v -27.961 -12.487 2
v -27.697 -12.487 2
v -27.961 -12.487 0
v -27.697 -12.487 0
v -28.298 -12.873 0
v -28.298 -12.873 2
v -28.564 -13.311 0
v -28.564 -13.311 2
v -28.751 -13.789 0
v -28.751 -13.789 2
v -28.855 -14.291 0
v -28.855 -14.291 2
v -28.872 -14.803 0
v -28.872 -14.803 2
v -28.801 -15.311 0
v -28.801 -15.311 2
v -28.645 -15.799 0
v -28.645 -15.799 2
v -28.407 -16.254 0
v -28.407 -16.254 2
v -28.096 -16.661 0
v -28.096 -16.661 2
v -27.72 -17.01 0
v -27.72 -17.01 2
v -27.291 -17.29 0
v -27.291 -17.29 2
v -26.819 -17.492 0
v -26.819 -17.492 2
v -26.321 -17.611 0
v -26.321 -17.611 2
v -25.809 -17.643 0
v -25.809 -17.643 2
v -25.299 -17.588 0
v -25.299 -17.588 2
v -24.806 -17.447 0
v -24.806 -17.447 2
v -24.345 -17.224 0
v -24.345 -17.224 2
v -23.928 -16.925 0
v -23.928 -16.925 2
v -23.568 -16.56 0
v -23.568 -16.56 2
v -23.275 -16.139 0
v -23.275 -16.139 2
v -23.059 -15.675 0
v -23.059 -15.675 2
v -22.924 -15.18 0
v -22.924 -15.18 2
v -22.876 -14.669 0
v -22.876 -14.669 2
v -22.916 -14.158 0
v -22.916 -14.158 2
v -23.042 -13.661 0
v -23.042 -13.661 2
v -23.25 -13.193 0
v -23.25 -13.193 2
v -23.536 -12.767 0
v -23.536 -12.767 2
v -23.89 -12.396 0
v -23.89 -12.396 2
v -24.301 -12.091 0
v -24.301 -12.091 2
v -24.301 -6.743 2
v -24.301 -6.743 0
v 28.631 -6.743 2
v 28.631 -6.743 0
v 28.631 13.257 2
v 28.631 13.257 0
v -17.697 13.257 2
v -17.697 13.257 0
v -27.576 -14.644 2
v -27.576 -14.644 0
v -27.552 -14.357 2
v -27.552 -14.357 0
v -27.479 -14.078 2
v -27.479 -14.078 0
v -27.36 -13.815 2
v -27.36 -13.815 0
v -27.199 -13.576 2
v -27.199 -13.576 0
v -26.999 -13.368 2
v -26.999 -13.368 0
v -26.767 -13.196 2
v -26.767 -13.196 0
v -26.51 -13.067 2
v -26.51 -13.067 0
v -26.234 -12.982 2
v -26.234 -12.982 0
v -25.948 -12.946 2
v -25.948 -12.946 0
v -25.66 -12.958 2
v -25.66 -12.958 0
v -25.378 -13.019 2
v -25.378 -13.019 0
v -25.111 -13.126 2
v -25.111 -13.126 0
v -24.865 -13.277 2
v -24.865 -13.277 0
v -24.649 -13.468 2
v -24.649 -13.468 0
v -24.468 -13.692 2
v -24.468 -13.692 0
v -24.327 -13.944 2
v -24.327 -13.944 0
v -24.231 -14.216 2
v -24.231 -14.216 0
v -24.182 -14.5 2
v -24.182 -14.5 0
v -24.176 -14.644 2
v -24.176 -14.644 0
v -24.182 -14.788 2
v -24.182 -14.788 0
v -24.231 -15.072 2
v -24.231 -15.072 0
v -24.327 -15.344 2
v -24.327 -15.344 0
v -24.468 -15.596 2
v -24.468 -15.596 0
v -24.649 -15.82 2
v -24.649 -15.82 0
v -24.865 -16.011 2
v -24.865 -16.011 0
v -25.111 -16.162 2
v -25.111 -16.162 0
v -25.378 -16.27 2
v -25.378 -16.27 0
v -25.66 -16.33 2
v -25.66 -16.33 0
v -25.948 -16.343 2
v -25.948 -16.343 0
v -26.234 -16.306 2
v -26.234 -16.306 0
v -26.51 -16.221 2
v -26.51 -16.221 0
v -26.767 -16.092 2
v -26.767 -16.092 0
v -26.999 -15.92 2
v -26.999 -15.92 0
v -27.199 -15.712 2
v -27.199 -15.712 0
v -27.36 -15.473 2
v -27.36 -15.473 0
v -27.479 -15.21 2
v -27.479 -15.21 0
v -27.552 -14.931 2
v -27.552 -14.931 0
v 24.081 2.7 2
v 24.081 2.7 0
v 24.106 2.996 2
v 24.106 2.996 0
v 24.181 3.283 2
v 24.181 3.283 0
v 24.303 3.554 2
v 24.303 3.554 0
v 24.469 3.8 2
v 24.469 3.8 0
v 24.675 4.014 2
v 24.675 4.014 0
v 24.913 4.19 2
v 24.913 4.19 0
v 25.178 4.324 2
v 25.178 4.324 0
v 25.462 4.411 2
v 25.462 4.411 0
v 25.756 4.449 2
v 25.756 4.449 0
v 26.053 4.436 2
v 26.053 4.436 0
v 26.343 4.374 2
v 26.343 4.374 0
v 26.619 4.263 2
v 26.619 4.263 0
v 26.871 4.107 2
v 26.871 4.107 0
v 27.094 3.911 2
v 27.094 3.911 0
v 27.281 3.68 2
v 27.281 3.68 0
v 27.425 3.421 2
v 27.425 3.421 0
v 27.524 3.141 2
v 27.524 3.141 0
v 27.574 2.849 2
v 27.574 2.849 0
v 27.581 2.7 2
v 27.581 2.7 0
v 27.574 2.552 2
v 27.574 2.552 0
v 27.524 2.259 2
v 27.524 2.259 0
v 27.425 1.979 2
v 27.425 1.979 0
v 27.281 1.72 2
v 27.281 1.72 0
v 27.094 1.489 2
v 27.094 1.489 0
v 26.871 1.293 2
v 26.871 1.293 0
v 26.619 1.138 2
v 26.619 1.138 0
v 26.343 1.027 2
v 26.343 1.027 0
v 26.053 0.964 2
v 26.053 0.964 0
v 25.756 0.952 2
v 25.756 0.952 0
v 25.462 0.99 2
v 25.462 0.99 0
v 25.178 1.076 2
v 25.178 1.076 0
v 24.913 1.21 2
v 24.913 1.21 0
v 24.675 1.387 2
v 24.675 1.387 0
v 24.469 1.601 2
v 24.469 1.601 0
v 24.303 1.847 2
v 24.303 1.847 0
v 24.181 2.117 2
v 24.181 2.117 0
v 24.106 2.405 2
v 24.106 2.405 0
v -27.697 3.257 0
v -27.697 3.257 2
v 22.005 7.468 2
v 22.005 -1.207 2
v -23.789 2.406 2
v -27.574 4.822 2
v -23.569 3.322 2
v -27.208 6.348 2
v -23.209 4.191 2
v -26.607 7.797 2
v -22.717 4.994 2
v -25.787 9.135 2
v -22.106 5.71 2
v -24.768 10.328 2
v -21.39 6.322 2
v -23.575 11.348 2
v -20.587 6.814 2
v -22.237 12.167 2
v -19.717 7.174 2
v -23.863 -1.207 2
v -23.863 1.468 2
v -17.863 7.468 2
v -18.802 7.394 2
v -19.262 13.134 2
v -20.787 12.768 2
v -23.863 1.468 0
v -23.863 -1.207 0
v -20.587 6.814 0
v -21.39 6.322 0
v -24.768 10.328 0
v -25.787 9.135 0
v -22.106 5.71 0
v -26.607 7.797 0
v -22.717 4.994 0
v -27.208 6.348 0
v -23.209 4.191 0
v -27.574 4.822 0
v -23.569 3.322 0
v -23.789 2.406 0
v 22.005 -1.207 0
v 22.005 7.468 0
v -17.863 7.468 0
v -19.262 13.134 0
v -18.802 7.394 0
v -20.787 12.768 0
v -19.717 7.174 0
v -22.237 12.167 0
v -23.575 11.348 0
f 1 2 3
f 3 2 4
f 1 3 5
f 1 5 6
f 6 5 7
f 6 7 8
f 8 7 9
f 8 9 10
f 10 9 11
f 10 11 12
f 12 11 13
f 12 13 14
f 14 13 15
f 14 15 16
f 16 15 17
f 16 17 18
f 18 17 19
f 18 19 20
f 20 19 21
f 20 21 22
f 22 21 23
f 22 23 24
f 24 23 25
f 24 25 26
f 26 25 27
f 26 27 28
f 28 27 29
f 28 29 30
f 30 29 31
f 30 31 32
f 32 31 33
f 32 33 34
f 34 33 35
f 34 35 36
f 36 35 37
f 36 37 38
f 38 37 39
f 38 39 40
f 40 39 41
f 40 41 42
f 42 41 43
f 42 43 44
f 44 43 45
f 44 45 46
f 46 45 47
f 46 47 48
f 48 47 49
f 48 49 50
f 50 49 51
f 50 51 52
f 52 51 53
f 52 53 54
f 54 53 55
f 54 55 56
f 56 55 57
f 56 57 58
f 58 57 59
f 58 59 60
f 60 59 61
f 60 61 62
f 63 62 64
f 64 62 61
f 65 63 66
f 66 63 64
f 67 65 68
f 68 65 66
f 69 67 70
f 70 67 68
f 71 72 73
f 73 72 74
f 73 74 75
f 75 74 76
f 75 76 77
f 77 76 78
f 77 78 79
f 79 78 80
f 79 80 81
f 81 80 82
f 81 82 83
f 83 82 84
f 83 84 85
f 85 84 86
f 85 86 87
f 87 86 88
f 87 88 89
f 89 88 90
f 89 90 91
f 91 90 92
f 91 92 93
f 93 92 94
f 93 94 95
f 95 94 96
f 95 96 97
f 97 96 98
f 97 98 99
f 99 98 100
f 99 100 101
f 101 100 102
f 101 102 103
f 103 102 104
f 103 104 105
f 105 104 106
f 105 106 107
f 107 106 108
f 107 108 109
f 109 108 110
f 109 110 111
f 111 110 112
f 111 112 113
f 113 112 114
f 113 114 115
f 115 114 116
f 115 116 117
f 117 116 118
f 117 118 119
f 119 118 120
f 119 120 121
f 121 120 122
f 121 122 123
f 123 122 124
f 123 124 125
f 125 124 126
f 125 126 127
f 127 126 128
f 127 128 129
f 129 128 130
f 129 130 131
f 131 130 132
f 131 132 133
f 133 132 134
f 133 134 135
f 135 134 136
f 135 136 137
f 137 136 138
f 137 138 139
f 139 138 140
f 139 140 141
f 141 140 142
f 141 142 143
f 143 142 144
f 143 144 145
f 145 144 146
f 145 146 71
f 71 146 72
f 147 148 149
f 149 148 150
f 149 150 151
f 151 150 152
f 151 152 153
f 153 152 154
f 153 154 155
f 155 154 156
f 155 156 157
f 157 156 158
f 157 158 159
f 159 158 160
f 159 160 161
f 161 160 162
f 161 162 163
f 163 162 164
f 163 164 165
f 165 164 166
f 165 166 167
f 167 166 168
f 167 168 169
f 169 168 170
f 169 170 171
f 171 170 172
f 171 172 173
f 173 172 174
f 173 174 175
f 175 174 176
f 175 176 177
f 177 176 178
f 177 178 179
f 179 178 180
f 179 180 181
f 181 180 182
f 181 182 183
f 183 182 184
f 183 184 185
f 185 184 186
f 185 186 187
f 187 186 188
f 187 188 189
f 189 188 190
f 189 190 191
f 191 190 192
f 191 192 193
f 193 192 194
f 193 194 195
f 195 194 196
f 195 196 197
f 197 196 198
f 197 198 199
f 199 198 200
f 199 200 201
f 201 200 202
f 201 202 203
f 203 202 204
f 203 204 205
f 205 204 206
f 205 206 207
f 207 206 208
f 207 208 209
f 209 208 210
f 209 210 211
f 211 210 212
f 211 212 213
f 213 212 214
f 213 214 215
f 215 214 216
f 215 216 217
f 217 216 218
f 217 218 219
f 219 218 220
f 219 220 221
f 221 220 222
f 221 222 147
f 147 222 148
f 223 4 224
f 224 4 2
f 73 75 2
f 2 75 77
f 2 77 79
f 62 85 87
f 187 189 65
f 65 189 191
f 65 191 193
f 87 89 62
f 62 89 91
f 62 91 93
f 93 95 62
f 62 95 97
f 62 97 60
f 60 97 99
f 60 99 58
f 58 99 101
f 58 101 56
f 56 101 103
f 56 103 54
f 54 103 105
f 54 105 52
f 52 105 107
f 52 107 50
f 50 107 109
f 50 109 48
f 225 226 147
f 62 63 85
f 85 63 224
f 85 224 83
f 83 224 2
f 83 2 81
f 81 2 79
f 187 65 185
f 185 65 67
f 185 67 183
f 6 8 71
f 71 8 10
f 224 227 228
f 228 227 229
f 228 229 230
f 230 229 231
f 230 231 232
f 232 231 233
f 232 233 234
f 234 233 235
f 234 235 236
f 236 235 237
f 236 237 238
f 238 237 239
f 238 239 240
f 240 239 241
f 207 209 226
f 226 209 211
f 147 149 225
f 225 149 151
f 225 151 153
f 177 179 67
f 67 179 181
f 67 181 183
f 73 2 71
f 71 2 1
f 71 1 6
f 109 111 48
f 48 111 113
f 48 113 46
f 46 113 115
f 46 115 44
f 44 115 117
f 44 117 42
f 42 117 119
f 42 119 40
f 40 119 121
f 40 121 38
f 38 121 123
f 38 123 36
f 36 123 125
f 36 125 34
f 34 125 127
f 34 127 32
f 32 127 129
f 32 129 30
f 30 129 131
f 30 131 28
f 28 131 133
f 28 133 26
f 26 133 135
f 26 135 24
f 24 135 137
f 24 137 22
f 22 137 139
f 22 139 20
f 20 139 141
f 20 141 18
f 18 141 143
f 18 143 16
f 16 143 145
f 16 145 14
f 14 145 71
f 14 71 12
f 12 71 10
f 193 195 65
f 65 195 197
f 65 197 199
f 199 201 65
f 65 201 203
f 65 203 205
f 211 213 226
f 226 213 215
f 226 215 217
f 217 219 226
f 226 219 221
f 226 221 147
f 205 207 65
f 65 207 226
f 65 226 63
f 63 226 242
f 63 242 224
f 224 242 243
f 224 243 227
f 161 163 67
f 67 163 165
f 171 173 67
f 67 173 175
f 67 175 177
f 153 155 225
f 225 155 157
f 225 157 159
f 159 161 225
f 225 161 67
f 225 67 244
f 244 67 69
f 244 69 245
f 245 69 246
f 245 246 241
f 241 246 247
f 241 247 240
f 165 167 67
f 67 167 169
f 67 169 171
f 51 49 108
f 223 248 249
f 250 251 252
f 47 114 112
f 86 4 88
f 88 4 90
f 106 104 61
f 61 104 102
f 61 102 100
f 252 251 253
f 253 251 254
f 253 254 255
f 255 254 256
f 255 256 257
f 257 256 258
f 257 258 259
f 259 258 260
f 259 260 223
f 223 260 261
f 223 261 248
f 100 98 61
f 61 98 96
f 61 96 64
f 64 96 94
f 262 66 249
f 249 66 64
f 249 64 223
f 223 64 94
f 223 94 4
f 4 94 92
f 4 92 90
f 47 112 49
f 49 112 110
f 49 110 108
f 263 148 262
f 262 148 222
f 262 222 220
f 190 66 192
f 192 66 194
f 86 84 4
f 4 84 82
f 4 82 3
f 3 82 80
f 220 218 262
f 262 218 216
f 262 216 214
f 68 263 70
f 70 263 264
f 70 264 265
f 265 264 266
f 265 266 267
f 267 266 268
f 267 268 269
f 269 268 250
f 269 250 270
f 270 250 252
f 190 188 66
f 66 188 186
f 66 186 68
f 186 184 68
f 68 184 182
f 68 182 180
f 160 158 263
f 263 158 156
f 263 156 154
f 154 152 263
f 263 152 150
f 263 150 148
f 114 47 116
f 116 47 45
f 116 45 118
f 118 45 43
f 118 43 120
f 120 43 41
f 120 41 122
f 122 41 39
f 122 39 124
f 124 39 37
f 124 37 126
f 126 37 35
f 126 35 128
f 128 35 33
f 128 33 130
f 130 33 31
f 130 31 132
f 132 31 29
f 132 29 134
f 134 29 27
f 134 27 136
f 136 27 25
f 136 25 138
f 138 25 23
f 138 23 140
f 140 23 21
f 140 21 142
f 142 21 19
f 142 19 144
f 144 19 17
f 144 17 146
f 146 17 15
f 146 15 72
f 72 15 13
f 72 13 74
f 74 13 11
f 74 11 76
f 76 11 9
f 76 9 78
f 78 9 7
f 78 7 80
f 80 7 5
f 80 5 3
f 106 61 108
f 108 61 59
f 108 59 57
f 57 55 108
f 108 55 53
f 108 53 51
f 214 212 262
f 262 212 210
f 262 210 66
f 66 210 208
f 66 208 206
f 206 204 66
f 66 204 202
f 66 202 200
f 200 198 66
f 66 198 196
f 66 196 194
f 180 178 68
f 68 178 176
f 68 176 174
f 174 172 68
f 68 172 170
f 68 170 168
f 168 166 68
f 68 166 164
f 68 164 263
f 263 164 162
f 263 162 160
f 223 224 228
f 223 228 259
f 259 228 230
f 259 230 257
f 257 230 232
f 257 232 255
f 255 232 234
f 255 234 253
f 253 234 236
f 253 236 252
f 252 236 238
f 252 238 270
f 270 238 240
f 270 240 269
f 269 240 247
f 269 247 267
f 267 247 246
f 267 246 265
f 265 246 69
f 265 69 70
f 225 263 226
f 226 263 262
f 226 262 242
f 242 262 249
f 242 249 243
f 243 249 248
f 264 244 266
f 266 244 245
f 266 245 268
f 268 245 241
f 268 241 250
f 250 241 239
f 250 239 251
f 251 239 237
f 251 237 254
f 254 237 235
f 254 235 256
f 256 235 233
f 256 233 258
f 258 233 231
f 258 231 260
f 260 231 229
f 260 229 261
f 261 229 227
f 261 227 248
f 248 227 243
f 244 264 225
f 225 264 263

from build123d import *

# Parameters (mm, degrees)
SKETCH1_R           = 1.7
SKETCH1_R_2         = 1.75
BOSS_EXTRUDE2_DEPTH = 2
FILLET1_R           = 10
CUT_EXTRUDE1_DEPTH  = 4.3


with BuildPart() as part:
    # Sketch1 → Boss-Extrude2 (new body)
    with BuildSketch(Plane.XY):
        with BuildLine():
            Line((-24.301399152, -6.742575532), (21.488241451, -6.742575532))
            Line((21.488241451, -6.742575532), (28.630568437, -6.742575532))
            Line((28.630568437, -6.742575532), (28.630568437, 13.257424468))
            Line((28.630568437, 13.257424468), (21.488241451, 13.257424468))
            Line((21.488241451, 13.257424468), (-17.840083641, 13.257424468))
            Line((-17.840083641, 13.257424468), (-21.005321996, 13.257424468))
            Line((-21.005321996, 13.257424468), (-27.697276817, 13.257424468))
            Line((-27.697276817, 13.257424468), (-27.697276817, -12.486730567))
            Line((-27.697276817, -12.486730567), (-27.960658237, -12.486730567))
            ThreePointArc((-27.960658237, -12.486730567), (-25.553021513, -17.62663418), (-24.301399152, -12.090501486))
            Line((-24.301399152, -12.090501486), (-24.301399152, -8.994116068))
            Line((-24.301399152, -8.994116068), (-24.301399152, -6.742575532))
        make_face()
        with Locations((-25.875977425, -14.644068258)):
            Circle(SKETCH1_R, mode=Mode.SUBTRACT)
        with Locations((25.830760295, 2.700271972)):
            Circle(SKETCH1_R_2, mode=Mode.SUBTRACT)
    extrude(amount=BOSS_EXTRUDE2_DEPTH)

    # Fillet1
    fillet1_edges = [part.edges().sort_by_distance(p)[0] for p in [
        (-27.697276817, 13.257424468, 1),
    ]]
    fillet(fillet1_edges, radius=FILLET1_R)

    # Sketch2 → Cut-Extrude1 (cut)
    with BuildSketch(Plane.XY.offset(2)):
        with BuildLine():
            Line((-23.863033574, -1.206587224), (22.005338697, -1.206587224))
            Line((22.005338697, -1.206587224), (22.005338697, 7.467544216))
            Line((22.005338697, 7.467544216), (-17.863033574, 7.467544216))
            ThreePointArc((-17.863033574, 7.467544216), (-22.105674261, 5.710184903), (-23.863033574, 1.467544216))
            Line((-23.863033574, 1.467544216), (-23.863033574, -1.206587224))
        make_face()
    extrude(amount=-CUT_EXTRUDE1_DEPTH, mode=Mode.SUBTRACT)


solid = part.part
